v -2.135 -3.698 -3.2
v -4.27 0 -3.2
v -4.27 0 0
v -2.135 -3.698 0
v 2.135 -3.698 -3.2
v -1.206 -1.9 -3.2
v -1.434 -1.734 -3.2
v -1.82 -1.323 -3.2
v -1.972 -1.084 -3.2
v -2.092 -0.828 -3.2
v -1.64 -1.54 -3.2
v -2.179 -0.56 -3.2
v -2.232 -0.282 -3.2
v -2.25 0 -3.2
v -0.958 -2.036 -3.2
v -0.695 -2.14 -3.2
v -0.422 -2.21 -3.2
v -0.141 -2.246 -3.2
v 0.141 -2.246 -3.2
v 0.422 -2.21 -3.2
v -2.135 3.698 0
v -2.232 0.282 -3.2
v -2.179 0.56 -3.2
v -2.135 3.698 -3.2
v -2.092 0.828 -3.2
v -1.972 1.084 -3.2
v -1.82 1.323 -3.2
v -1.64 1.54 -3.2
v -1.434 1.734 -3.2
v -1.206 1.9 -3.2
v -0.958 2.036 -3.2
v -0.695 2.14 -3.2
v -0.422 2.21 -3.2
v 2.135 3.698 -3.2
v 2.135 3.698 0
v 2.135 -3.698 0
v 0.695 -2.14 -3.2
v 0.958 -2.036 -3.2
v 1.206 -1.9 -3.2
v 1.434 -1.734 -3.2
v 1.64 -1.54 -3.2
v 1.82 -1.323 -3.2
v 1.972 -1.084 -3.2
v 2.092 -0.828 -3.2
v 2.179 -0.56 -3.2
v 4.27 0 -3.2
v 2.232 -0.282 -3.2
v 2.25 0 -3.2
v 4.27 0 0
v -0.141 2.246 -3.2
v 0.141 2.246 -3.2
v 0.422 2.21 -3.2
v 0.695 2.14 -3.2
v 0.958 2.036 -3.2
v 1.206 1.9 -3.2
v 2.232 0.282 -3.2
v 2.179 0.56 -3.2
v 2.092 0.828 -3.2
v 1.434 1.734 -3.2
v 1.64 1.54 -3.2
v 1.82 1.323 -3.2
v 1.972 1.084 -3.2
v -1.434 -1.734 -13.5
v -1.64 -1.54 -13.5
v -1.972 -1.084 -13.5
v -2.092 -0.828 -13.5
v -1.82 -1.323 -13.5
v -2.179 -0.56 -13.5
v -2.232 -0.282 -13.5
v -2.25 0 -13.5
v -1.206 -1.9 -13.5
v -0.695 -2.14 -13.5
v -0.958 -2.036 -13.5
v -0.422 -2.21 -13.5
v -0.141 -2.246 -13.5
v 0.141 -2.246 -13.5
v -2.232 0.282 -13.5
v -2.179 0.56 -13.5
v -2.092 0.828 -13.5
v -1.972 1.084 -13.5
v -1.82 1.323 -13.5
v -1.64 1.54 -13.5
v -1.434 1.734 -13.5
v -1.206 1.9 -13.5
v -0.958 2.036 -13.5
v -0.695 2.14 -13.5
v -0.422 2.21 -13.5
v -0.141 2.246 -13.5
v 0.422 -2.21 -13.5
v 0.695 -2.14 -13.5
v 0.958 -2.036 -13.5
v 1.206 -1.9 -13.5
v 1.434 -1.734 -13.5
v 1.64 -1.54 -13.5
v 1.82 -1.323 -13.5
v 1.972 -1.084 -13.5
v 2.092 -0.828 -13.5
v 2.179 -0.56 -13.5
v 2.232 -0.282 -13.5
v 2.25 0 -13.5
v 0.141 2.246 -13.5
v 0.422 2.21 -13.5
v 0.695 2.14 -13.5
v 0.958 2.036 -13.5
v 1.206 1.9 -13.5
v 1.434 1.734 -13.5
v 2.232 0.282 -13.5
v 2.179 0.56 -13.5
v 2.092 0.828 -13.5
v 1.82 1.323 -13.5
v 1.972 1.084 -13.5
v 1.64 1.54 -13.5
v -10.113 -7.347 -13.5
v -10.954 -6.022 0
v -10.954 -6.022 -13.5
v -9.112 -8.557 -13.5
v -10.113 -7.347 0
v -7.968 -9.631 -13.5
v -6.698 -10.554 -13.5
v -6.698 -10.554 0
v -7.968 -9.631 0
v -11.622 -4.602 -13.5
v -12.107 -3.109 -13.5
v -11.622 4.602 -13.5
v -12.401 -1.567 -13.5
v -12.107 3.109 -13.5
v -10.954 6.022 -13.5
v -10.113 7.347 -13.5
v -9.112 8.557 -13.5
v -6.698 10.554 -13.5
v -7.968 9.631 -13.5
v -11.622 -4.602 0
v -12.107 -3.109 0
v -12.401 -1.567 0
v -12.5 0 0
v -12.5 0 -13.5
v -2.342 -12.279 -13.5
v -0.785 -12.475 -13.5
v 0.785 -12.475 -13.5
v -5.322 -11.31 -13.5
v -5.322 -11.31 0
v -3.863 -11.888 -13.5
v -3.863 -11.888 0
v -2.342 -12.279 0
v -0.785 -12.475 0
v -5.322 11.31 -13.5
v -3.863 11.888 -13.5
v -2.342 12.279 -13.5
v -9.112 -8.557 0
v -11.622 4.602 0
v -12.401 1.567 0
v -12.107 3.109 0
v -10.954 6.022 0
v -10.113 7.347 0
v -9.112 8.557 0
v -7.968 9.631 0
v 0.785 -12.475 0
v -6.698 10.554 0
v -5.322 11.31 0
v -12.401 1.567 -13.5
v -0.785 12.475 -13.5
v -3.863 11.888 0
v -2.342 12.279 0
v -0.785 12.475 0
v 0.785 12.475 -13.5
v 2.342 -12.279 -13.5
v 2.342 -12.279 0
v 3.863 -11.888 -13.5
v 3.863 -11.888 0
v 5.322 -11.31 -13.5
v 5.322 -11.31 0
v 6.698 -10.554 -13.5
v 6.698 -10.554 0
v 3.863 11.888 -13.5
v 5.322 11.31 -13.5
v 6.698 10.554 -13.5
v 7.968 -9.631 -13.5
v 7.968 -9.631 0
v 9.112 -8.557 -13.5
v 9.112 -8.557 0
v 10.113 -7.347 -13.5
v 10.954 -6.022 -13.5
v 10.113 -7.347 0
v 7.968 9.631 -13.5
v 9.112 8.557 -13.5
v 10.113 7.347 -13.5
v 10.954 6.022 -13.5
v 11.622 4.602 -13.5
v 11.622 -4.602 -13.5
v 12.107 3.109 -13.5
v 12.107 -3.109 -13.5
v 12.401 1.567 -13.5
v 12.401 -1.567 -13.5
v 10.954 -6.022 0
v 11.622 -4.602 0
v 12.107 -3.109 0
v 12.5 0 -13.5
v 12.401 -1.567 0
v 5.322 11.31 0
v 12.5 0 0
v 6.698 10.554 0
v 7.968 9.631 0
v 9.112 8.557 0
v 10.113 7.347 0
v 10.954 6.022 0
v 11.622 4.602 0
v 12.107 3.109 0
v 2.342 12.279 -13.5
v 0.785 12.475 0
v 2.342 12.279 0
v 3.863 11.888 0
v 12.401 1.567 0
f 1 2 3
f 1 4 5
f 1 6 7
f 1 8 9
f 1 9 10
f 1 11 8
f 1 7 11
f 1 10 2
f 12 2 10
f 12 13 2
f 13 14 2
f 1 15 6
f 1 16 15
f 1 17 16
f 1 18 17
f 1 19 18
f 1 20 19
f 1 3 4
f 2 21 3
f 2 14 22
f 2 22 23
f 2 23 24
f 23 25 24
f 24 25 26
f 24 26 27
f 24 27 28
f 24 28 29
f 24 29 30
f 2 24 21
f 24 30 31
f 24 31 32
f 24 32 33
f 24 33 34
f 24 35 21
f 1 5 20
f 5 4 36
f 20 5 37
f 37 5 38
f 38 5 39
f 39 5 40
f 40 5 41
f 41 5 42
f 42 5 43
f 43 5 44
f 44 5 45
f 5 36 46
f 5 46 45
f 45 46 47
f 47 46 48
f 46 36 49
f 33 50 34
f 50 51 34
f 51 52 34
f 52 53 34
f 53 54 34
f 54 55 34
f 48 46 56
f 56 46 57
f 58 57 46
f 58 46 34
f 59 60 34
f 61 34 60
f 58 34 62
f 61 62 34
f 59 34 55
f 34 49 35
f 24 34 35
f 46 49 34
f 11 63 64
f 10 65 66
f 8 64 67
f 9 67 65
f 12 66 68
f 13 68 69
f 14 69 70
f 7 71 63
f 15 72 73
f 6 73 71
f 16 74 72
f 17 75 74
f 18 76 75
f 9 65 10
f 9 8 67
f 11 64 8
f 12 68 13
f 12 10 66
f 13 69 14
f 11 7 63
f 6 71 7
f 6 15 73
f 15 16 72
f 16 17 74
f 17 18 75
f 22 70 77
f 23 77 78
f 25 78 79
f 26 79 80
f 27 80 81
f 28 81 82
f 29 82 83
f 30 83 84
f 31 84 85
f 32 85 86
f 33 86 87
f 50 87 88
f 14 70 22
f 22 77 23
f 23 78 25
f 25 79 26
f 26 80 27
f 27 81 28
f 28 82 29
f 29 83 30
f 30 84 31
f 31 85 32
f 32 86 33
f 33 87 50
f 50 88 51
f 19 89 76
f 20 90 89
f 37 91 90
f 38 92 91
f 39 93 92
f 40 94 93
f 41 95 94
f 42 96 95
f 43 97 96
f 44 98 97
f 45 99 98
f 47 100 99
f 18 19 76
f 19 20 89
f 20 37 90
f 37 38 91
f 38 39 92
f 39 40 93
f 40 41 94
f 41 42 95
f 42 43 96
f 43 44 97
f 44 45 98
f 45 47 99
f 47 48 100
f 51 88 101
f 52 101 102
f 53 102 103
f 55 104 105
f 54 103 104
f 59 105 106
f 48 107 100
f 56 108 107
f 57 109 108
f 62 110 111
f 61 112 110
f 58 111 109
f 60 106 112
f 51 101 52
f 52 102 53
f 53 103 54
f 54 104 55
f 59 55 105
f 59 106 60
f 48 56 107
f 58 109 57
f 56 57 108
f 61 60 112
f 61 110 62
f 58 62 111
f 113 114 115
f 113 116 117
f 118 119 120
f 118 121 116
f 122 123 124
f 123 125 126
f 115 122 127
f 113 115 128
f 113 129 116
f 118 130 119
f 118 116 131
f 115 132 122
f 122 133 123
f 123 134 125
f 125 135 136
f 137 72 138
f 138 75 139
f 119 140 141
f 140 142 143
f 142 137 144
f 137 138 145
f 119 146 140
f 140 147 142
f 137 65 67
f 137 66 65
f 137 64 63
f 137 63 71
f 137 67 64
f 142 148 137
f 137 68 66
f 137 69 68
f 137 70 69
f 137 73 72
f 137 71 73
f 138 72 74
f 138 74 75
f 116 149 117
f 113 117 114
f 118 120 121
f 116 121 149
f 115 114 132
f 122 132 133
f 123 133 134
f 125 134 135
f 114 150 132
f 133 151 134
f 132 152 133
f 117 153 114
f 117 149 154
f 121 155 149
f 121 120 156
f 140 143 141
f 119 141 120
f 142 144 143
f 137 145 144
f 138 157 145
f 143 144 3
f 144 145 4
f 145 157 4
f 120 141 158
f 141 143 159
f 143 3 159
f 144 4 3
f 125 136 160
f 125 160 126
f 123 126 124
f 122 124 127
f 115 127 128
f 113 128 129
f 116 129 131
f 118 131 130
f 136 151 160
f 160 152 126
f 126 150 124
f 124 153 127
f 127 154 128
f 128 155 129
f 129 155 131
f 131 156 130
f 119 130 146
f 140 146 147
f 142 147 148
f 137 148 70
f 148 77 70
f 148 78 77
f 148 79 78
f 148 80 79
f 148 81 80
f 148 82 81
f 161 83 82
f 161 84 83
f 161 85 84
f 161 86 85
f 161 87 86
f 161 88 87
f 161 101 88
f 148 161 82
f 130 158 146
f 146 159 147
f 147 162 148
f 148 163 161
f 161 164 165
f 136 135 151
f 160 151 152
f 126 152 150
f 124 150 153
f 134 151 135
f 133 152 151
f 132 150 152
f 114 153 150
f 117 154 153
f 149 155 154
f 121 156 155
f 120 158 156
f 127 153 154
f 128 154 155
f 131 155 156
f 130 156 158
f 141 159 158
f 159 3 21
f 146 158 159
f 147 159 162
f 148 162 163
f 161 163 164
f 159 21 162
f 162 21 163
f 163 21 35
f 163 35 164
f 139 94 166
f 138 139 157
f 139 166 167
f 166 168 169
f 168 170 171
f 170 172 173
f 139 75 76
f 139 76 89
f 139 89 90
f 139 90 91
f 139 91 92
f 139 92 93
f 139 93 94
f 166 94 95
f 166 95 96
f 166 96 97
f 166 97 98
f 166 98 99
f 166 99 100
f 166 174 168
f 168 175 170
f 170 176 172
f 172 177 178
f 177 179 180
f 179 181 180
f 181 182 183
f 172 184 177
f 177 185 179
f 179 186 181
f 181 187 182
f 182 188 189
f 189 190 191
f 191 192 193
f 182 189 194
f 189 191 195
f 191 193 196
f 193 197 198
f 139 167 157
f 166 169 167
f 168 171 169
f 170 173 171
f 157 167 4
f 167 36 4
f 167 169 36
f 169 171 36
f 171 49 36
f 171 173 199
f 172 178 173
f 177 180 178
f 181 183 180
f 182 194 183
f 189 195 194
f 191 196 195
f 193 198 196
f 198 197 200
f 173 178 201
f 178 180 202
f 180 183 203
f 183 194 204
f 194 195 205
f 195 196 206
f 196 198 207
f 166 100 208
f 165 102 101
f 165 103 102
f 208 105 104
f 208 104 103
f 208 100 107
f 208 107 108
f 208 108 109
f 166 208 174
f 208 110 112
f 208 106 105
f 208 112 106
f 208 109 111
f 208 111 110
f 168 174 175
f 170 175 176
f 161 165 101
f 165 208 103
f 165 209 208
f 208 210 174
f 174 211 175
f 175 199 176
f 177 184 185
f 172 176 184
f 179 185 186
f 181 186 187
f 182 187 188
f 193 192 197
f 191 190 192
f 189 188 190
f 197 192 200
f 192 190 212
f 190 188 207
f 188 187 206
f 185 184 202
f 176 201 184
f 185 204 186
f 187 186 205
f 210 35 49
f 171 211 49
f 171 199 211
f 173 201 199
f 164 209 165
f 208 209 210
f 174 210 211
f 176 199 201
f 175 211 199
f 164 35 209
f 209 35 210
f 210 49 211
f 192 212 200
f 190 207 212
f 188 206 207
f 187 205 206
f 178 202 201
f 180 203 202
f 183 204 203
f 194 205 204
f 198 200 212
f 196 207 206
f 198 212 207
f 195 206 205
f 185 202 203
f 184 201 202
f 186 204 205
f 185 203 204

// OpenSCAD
$fn = 50;


difference() {
	union() {
		translate(v = [0, 0, -13.5000000000]) {
			cylinder(h = 13.5000000000, r = 12.5000000000);
		}
	}
	union() {
		translate(v = [0, 0, 0]) {
			rotate(a = [0, 0, 0]) {
				difference() {
					union() {
						translate(v = [0, 0, -3.2000000000]) {
							linear_extrude(height = 3.2000000000) {
								polygon(points = [[4.2698000000, 0.0000000000], [2.1349000000, 3.6977552691], [-2.1349000000, 3.6977552691], [-4.2698000000, 0.0000000000], [-2.1349000000, -3.6977552691], [2.1349000000, -3.6977552691]]);
							}
						}
					}
					union();
				}
			}
		}
		#translate(v = [0, 0, -100.0000000000]) {
			cylinder(h = 200, r = 2.2500000000);
		}
	}
}
